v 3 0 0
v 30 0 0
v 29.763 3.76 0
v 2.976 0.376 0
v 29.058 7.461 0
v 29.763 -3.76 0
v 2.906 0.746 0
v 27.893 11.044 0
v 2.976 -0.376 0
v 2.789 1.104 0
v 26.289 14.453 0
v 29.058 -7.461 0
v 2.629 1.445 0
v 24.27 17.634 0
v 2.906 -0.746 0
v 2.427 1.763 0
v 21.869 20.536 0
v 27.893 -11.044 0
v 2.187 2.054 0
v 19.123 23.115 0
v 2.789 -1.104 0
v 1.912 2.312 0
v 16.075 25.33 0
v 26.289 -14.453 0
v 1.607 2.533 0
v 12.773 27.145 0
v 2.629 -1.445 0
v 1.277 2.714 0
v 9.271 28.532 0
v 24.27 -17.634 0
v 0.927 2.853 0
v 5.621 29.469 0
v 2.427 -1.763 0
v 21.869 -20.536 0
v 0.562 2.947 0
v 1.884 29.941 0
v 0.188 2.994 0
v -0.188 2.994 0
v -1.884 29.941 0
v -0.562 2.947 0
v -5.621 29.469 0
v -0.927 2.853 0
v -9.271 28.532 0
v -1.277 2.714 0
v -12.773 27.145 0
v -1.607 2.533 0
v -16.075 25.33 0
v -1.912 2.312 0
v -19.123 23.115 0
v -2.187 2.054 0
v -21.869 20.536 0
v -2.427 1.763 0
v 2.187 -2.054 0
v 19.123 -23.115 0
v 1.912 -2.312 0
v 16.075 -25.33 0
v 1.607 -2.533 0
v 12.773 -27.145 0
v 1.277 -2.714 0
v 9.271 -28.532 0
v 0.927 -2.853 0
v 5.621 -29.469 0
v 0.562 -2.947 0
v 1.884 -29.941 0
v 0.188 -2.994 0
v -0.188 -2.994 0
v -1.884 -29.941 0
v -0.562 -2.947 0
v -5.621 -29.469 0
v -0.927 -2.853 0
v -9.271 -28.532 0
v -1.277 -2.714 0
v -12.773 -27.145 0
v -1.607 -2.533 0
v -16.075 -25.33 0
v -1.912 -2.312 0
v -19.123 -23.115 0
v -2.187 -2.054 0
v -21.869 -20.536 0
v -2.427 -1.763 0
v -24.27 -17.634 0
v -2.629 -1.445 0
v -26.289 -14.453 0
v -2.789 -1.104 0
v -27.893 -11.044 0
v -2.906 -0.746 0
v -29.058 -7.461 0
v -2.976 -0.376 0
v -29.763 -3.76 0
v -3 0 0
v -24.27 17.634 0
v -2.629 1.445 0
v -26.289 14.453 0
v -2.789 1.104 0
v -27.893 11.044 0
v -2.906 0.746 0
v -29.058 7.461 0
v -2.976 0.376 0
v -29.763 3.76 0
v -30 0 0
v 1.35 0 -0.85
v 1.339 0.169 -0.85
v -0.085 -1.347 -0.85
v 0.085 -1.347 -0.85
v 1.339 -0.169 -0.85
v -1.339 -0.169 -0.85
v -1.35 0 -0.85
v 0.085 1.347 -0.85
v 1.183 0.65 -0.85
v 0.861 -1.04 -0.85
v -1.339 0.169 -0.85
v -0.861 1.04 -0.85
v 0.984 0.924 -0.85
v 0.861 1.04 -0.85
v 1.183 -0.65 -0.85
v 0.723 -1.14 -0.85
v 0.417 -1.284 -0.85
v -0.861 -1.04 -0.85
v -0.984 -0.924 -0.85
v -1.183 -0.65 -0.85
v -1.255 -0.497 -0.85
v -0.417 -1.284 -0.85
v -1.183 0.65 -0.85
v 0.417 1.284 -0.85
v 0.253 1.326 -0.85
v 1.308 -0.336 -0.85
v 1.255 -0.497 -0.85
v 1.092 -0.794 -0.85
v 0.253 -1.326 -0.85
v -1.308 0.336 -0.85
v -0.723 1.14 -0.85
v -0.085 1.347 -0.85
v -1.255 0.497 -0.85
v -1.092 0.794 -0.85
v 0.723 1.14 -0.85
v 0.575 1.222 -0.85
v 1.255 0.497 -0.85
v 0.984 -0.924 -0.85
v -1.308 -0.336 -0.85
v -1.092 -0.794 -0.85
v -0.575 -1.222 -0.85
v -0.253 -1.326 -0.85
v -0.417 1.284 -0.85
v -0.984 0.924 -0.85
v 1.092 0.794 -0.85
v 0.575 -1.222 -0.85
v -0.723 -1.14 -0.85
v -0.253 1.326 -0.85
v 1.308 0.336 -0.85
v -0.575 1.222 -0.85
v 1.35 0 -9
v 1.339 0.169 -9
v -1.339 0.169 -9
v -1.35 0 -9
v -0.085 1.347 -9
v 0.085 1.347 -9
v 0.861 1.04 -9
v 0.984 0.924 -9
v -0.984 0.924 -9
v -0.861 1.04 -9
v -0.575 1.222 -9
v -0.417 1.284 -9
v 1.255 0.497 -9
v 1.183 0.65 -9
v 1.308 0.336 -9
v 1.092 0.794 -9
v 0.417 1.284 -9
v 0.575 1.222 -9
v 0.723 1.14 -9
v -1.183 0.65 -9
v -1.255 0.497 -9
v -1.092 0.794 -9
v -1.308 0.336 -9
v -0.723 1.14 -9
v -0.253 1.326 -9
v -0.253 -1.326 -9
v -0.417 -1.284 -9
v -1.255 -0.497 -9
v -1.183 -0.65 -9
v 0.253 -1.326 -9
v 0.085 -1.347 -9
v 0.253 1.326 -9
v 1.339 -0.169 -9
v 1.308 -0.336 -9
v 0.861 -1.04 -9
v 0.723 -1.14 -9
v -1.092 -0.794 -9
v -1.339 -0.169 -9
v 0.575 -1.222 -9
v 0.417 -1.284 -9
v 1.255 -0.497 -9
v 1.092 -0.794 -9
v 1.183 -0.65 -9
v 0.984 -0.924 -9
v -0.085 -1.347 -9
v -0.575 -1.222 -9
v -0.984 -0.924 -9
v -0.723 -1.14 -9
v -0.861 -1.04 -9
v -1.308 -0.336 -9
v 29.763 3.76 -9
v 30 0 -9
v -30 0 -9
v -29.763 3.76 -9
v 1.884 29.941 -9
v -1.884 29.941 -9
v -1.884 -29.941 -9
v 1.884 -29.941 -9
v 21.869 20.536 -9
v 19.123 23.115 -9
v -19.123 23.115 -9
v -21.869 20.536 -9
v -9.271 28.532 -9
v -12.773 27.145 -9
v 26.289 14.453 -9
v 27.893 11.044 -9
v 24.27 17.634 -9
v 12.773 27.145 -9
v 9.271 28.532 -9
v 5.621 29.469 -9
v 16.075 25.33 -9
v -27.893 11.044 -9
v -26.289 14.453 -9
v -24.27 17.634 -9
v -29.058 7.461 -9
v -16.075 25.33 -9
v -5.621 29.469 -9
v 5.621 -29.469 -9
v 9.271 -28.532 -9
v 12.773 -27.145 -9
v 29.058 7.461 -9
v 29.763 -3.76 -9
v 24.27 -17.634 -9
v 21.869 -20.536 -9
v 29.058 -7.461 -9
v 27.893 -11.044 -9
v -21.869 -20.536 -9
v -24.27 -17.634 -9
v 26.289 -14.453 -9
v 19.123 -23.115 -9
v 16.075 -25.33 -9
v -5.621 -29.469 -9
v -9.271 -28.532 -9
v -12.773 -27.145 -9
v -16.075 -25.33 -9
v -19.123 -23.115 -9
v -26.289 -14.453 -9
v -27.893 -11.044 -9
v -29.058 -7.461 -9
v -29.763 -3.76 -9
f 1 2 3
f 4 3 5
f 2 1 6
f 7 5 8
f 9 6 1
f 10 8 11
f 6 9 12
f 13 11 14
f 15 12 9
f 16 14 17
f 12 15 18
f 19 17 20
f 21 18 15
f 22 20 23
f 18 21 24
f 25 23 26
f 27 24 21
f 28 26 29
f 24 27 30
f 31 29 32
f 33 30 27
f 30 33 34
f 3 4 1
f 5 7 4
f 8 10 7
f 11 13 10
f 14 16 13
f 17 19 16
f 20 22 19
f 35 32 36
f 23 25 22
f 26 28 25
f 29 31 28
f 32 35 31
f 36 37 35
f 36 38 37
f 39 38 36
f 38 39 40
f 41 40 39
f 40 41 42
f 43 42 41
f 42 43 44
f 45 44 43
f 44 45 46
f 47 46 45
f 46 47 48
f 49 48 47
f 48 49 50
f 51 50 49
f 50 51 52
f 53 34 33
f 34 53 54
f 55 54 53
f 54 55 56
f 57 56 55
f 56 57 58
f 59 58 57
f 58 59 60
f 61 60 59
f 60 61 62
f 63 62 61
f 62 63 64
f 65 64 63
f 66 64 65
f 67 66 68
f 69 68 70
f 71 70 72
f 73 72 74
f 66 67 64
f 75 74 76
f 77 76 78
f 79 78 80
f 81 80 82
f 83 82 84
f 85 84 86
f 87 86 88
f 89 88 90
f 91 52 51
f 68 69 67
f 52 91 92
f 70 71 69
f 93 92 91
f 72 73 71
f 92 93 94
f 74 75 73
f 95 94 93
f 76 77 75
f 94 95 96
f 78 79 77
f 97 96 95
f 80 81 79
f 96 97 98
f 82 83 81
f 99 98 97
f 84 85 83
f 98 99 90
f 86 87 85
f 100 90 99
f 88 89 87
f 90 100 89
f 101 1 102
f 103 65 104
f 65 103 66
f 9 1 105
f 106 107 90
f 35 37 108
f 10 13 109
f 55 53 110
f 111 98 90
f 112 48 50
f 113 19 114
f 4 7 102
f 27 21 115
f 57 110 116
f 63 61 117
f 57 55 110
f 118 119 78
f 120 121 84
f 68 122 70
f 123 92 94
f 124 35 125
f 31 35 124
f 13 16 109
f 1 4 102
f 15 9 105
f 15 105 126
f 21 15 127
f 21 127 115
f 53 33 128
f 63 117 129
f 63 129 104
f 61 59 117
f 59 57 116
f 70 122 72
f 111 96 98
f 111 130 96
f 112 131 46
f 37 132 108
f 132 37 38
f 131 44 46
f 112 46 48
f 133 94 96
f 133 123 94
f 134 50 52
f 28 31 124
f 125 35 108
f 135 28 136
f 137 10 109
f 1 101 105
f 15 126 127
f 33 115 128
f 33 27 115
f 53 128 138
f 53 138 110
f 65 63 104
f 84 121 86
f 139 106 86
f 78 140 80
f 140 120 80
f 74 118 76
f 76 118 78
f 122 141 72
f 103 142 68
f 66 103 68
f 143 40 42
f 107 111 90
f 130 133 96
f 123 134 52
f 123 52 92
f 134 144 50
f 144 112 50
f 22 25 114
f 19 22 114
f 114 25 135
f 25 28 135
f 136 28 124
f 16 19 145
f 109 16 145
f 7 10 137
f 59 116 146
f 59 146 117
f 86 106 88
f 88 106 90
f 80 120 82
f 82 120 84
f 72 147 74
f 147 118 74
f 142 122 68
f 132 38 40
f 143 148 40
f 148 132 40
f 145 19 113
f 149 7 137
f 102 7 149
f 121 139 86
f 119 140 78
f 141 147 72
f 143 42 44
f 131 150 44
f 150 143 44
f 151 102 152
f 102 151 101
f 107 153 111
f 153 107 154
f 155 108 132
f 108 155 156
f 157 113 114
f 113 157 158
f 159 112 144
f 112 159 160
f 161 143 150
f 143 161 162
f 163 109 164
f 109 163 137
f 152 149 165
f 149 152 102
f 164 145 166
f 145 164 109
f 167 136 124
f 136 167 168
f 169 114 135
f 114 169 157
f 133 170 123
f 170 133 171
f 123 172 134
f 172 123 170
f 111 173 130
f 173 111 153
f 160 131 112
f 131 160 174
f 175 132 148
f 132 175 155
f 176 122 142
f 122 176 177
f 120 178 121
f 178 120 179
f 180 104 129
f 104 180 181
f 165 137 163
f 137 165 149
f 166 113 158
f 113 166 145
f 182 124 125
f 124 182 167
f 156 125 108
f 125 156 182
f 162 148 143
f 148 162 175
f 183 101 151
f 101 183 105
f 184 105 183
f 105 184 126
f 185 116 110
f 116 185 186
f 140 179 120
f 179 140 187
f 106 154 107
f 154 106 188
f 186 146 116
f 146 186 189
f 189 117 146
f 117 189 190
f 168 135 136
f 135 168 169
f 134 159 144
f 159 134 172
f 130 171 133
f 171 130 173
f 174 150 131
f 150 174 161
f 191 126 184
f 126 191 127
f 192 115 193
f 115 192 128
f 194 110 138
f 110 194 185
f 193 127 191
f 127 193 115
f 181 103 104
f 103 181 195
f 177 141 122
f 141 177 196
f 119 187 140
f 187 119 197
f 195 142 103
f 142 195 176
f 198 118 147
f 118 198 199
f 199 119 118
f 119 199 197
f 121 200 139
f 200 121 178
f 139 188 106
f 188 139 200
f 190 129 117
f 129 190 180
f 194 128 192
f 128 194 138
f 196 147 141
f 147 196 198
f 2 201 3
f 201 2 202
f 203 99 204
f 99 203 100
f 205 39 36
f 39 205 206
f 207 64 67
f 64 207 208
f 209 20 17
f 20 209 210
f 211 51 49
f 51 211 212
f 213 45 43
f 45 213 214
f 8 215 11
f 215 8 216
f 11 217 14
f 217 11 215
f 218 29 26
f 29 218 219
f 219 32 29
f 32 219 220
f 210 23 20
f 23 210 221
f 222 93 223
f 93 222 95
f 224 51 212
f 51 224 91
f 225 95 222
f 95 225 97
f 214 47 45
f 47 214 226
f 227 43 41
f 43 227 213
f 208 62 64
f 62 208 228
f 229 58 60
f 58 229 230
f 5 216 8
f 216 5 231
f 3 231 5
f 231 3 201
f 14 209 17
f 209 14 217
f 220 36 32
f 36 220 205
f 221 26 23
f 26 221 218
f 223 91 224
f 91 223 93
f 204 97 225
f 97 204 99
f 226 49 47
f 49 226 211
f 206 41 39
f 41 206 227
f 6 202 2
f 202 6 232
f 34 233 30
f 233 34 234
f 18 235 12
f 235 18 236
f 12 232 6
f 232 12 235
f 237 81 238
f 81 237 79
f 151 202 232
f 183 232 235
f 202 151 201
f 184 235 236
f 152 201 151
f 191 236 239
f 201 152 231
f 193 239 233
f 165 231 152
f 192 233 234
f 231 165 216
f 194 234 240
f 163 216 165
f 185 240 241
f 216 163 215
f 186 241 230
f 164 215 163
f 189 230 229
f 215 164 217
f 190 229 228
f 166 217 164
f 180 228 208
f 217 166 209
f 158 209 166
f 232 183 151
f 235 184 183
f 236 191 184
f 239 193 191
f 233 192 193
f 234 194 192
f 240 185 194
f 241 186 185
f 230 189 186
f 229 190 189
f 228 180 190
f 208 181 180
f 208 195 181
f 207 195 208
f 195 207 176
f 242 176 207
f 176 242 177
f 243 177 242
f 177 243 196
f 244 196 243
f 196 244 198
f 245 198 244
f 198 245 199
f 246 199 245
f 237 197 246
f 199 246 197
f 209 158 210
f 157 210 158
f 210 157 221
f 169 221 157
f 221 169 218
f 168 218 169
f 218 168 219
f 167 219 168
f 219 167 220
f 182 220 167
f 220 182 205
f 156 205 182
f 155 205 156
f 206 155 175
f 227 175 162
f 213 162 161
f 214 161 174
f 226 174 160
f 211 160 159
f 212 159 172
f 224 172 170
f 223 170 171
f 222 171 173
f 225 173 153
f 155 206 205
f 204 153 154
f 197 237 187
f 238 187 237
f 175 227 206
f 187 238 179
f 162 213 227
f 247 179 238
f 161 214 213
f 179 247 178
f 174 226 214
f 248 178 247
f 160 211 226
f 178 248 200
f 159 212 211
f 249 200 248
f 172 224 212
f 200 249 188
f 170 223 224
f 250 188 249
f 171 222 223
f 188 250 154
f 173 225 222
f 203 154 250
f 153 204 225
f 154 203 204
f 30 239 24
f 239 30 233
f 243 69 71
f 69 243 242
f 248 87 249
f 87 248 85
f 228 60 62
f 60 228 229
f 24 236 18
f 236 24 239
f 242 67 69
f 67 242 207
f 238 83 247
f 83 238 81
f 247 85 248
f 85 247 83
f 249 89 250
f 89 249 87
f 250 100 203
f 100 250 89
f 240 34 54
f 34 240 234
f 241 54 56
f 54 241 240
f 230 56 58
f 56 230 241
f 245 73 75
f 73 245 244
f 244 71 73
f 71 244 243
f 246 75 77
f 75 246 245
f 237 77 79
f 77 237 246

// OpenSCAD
$fn = 50;

difference() {
	union() {
		translate(v = [0, 0, -9.0]) {
			cylinder(h = 9, r = 30.0);
		}
	}
	union() {
		translate(v = [0, 0, 0]) {
			rotate(a = [0, 0, 0]) {
				difference() {
					union() {
						translate(v = [0, 0, -12.0]) {
							cylinder(h = 12, r = 1.0);
						}
						translate(v = [0, 0, -0.85]) {
							cylinder(h = 0.85, r1 = 1.35, r2 = 3.0);
						}
						translate(v = [0, 0, -12.0]) {
							cylinder(h = 12, r = 1.35);
						}
						translate(v = [0, 0, -12.0]) {
							cylinder(h = 12, r = 1.0);
						}
					}
					union();
				}
			}
		}
	}
}
